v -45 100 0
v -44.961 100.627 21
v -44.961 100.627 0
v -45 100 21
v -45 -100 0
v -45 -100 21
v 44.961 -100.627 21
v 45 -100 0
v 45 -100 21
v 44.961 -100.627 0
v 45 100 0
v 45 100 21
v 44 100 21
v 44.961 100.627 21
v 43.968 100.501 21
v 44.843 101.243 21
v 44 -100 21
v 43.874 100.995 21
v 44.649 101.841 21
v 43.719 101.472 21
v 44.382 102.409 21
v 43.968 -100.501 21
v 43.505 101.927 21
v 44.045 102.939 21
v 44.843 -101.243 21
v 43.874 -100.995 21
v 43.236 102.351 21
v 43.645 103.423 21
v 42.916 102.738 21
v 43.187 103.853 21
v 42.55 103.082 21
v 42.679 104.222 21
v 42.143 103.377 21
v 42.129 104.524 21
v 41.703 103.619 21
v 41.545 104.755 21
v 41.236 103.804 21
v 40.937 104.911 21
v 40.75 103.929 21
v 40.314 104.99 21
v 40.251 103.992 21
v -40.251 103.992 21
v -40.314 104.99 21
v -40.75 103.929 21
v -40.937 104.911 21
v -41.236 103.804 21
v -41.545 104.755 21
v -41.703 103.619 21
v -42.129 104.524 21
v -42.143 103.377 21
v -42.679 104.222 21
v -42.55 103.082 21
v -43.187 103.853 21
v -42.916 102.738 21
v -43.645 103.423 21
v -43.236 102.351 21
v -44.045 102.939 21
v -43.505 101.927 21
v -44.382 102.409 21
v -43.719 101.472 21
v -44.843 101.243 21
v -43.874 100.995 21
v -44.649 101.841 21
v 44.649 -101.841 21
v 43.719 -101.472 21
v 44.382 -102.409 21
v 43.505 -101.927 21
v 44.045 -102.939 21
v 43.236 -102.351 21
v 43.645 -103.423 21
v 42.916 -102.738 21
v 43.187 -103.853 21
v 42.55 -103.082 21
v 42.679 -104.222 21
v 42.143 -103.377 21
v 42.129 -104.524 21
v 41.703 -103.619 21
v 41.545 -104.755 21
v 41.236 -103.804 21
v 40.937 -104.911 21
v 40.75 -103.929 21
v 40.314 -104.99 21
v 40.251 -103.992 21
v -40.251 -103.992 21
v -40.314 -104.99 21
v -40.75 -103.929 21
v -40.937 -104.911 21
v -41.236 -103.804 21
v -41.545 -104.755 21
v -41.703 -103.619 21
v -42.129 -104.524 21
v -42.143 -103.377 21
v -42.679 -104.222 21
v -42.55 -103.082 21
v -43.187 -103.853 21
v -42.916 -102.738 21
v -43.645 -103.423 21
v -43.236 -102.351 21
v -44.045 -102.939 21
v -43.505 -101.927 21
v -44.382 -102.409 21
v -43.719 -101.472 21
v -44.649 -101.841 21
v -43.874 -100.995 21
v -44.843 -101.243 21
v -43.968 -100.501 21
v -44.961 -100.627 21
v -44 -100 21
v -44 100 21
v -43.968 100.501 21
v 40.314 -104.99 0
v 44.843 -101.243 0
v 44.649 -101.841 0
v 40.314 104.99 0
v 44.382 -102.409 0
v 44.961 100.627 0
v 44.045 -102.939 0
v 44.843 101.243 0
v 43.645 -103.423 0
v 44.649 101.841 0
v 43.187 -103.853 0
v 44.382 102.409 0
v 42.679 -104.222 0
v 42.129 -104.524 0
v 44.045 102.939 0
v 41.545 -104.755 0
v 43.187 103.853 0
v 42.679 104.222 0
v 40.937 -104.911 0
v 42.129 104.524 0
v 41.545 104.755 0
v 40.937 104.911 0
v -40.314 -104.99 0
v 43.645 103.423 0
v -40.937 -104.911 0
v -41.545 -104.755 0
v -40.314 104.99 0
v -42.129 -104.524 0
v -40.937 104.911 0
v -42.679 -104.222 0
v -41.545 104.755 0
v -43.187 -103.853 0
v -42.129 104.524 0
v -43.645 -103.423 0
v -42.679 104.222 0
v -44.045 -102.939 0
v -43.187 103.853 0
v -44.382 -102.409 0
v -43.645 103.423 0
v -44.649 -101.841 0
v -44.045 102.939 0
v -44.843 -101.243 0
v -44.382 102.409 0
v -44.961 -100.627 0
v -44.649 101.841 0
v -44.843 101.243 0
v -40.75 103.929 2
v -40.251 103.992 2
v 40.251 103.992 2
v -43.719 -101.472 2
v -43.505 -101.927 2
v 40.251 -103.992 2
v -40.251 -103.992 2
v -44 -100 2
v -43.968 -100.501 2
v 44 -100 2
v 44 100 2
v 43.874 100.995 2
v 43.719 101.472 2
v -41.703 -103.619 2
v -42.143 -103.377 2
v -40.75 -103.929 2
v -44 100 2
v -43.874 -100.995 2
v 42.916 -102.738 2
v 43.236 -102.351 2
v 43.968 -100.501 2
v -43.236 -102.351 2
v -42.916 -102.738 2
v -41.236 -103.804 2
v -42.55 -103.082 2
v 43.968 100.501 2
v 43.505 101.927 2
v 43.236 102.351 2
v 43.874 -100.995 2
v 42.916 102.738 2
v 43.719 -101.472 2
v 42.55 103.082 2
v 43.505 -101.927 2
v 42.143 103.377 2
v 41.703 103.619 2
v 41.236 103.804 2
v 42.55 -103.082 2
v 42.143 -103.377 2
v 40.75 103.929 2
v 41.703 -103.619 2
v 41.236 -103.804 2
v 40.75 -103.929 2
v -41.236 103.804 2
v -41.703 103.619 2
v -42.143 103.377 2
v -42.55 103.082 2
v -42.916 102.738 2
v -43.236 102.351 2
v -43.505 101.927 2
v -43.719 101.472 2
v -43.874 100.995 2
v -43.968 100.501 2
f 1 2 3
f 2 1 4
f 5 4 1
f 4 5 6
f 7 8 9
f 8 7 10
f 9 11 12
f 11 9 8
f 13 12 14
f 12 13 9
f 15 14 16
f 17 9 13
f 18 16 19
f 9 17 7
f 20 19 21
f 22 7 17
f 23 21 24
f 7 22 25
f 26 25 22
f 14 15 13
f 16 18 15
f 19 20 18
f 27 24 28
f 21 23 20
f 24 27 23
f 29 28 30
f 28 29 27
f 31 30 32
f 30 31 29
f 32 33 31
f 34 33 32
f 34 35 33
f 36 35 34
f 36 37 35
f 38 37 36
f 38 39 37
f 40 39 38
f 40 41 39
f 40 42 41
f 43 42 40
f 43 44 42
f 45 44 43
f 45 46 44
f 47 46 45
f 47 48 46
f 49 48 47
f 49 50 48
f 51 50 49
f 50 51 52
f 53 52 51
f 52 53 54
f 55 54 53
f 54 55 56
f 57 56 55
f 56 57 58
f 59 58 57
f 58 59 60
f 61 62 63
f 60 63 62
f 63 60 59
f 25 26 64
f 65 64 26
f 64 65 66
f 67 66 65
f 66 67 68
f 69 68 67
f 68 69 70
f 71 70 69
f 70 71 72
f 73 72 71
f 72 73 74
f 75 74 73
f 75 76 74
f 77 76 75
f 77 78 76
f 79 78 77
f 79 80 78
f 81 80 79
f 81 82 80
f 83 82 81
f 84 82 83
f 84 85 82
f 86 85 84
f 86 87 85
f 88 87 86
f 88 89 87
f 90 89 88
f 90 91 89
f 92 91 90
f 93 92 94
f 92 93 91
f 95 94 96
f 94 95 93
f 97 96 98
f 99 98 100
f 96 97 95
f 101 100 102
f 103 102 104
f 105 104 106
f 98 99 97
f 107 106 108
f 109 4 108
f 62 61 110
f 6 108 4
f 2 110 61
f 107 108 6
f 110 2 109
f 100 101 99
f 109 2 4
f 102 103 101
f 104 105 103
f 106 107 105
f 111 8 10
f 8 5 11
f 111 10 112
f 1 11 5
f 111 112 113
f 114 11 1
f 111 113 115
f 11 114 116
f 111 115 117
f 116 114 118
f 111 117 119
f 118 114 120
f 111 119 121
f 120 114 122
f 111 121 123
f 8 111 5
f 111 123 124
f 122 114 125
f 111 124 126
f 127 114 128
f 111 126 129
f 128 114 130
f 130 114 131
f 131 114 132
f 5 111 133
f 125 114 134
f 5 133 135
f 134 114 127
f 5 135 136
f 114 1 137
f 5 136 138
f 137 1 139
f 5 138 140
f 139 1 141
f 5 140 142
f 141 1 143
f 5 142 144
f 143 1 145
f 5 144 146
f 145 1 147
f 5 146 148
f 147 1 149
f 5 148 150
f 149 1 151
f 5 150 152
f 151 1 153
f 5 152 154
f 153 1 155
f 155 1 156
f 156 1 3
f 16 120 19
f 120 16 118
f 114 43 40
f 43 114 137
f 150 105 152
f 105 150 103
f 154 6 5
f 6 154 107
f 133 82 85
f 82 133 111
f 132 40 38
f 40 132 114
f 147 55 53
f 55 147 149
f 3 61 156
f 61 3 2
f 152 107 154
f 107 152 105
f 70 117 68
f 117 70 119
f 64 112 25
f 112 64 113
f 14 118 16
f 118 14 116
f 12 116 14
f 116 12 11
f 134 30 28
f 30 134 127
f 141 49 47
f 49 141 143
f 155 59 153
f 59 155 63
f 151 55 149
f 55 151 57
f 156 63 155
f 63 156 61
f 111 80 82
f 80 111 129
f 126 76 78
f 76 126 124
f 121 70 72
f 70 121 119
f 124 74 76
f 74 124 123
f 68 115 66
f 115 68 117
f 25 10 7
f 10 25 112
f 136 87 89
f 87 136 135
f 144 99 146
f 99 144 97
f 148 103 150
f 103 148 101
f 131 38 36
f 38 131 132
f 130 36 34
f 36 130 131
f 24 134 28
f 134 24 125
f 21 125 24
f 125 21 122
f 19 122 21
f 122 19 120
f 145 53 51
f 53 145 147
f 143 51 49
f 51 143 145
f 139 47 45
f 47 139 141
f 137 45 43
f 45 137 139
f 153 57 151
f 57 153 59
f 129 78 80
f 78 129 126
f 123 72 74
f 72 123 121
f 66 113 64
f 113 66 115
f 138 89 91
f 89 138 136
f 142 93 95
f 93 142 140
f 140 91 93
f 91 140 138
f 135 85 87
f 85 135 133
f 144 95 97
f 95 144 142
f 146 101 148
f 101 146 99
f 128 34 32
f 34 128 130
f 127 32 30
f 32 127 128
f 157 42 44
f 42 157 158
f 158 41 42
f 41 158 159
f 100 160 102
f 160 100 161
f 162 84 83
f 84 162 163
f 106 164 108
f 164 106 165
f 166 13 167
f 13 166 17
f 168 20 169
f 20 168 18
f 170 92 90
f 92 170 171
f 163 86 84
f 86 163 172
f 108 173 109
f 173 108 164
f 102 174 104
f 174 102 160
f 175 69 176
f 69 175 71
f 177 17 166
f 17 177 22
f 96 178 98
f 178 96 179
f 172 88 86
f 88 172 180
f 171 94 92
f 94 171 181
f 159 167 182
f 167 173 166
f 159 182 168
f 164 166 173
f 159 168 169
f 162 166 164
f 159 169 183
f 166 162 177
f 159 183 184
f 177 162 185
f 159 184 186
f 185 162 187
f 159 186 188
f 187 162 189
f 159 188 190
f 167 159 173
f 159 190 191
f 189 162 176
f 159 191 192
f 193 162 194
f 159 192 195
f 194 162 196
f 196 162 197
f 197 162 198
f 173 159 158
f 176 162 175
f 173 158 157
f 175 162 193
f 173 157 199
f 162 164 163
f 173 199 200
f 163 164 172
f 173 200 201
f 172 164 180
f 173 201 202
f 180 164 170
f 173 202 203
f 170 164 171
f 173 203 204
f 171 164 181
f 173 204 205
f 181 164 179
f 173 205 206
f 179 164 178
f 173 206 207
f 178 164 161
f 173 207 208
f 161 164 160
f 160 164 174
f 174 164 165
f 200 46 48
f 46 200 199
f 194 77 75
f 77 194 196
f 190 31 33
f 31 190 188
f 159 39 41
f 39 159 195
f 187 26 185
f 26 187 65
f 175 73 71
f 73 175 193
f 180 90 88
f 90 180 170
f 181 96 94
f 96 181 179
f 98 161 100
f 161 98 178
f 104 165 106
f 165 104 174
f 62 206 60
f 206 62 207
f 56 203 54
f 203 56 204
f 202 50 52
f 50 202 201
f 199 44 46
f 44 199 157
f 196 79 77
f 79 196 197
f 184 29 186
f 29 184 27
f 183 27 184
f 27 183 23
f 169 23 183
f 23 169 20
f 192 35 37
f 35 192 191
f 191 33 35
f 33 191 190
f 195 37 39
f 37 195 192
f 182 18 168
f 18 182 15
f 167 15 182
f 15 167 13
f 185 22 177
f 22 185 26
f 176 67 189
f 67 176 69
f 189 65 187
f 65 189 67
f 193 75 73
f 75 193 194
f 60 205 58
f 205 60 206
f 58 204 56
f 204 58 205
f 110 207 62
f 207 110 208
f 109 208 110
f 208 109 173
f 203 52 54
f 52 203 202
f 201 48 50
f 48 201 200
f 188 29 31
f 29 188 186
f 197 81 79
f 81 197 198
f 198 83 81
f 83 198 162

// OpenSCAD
$fn = 50;


difference() {
	union() {
		hull() {
			translate(v = [-40.0000000000, 100.0000000000, 0]) {
				cylinder(h = 21, r = 5);
			}
			translate(v = [40.0000000000, 100.0000000000, 0]) {
				cylinder(h = 21, r = 5);
			}
			translate(v = [-40.0000000000, -100.0000000000, 0]) {
				cylinder(h = 21, r = 5);
			}
			translate(v = [40.0000000000, -100.0000000000, 0]) {
				cylinder(h = 21, r = 5);
			}
		}
	}
	union() {
		translate(v = [0, 0, 2]) {
			hull() {
				translate(v = [-40.0000000000, 100.0000000000, 0]) {
					cylinder(h = 19, r = 4);
				}
				translate(v = [40.0000000000, 100.0000000000, 0]) {
					cylinder(h = 19, r = 4);
				}
				translate(v = [-40.0000000000, -100.0000000000, 0]) {
					cylinder(h = 19, r = 4);
				}
				translate(v = [40.0000000000, -100.0000000000, 0]) {
					cylinder(h = 19, r = 4);
				}
			}
		}
	}
}
